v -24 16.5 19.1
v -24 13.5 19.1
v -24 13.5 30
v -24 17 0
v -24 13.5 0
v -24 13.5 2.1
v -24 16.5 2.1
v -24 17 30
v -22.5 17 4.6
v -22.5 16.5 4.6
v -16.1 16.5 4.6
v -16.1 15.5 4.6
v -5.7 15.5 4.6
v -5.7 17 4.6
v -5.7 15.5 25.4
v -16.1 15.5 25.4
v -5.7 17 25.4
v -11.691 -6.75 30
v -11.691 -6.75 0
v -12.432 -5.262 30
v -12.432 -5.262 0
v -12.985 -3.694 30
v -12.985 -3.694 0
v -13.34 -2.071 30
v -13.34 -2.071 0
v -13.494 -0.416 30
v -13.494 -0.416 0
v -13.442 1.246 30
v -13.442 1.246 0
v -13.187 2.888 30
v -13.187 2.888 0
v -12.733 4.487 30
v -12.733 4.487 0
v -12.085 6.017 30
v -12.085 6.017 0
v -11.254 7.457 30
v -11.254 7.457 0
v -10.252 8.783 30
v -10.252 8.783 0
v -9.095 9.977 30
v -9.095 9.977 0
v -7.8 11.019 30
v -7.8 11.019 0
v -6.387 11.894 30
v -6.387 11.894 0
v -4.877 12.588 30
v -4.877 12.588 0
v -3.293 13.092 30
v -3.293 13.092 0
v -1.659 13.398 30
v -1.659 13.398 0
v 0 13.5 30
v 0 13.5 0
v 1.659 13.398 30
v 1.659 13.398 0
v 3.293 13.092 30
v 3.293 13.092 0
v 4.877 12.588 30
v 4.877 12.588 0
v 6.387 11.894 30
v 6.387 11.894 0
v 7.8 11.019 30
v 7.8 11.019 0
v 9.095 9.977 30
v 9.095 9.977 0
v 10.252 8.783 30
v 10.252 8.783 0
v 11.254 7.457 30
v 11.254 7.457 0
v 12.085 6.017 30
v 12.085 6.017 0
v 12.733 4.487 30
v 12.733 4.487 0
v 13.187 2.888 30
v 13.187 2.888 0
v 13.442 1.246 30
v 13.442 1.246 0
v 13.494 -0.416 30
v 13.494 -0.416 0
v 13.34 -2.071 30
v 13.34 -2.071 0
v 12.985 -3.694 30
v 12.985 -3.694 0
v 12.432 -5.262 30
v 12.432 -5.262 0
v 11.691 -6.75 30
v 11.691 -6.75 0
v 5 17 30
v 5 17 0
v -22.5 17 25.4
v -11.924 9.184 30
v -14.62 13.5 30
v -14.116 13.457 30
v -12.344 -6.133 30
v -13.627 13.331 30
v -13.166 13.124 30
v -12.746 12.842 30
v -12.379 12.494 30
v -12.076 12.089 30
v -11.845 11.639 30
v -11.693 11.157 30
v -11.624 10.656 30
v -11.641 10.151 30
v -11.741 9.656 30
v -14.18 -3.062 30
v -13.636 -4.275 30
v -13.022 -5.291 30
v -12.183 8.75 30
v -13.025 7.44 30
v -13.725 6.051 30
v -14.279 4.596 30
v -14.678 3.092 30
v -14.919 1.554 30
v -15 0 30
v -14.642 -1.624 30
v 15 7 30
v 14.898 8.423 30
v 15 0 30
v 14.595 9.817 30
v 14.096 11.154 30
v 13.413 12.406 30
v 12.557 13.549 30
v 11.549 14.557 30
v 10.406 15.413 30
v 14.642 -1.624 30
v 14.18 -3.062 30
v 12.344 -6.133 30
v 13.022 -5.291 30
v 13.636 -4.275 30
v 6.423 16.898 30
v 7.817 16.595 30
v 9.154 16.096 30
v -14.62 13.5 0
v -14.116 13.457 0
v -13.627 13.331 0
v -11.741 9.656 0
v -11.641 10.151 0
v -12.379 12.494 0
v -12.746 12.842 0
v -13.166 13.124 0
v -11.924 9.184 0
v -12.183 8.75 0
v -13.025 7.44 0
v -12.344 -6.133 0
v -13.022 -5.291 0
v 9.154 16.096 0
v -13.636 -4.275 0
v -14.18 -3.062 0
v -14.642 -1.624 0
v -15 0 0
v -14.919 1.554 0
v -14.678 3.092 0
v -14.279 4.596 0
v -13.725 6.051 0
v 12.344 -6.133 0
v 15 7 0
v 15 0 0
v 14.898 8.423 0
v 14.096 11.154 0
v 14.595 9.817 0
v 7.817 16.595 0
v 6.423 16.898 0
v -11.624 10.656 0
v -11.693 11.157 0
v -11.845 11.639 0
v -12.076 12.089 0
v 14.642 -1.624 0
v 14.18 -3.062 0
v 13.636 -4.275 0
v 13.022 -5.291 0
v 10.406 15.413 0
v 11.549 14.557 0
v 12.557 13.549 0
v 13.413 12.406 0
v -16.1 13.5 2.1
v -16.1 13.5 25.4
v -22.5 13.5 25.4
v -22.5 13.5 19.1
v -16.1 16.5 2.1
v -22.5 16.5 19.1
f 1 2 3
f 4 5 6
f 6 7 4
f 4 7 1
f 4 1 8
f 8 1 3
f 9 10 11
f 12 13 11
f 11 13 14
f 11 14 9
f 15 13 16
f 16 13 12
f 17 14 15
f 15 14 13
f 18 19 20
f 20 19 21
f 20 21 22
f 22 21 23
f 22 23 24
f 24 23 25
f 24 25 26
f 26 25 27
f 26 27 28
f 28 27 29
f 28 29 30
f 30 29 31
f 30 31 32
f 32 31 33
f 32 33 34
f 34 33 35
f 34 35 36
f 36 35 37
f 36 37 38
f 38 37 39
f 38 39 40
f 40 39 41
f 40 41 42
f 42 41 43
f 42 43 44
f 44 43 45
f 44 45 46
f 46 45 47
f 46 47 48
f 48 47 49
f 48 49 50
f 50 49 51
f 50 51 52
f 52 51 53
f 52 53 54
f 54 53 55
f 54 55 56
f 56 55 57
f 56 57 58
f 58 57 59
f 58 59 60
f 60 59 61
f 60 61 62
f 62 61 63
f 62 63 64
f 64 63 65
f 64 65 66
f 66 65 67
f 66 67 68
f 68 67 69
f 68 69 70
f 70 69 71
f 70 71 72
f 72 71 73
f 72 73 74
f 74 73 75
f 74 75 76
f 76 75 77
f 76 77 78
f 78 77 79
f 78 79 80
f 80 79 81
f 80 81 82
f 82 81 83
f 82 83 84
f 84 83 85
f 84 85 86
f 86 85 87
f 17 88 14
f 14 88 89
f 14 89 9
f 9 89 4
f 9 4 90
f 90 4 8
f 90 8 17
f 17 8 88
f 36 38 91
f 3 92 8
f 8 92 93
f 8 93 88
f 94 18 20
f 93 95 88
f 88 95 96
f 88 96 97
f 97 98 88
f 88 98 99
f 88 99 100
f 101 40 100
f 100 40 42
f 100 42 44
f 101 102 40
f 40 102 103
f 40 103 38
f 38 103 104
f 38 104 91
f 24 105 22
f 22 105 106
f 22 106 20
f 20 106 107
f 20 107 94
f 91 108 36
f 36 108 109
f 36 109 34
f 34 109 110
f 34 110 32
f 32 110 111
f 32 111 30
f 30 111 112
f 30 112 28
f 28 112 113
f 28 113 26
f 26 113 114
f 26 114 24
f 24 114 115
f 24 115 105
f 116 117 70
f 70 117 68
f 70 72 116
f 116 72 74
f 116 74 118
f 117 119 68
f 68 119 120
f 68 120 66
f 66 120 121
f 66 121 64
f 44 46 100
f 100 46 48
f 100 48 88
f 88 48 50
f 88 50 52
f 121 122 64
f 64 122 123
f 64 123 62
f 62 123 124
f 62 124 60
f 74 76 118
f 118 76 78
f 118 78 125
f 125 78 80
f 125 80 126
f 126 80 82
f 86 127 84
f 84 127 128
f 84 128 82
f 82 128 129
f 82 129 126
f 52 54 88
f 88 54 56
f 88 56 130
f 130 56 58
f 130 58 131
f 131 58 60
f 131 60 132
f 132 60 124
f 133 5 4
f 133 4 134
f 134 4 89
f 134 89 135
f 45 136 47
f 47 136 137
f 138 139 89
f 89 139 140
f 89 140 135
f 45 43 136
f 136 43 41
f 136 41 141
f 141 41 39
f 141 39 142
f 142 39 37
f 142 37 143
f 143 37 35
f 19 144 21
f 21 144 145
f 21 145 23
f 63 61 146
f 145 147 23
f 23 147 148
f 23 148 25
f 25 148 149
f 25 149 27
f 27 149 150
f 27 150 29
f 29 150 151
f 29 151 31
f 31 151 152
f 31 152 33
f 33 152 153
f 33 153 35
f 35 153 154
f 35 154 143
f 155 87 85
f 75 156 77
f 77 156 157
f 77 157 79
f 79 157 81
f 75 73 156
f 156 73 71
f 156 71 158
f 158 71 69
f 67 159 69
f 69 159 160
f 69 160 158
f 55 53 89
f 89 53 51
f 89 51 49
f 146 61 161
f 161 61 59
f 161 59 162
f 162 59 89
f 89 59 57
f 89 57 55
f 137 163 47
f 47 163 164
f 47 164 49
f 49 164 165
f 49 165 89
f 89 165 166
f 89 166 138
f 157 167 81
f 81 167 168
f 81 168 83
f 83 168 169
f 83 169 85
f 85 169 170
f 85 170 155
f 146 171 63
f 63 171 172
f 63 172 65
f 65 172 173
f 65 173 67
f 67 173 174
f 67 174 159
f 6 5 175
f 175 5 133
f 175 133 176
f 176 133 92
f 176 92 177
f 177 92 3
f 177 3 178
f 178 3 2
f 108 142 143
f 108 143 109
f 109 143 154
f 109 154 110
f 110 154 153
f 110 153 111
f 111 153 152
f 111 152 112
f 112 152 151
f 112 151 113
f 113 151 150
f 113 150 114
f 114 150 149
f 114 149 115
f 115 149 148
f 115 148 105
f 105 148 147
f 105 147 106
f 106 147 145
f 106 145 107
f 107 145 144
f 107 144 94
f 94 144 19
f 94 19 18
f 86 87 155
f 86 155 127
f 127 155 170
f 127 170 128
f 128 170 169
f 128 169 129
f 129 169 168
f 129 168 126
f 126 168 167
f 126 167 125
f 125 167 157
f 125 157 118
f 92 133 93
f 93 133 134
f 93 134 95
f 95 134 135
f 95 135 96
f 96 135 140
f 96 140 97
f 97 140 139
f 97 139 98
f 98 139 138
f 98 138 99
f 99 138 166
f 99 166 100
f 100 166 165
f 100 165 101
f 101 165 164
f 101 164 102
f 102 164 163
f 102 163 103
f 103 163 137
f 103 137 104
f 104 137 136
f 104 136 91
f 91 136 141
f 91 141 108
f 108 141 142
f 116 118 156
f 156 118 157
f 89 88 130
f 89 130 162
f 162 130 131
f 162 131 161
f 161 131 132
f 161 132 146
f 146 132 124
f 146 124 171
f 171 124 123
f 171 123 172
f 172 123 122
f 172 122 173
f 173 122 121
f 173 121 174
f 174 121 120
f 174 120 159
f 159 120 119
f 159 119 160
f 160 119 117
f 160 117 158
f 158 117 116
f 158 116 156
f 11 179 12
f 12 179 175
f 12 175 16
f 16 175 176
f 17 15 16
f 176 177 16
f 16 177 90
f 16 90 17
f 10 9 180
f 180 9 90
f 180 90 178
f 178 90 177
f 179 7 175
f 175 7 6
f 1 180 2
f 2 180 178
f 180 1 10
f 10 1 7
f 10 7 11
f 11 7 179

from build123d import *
from build123d.topology import SkipClean

# Parameters (mm, degrees)
SKETCH_2_W           = 5
SKETCH_2_H           = 5
EXTRUDE_3_DEPTH      = 30
CUT_EXTRUDE_10_DEPTH = 3
SKETCH_10_W          = 25.587445544
SKETCH_10_H          = 30
CUT_EXTRUDE_11_DEPTH = 1.5
SKETCH_11_W          = 16.6
SKETCH_11_H          = 21.6
SKETCH_11_W_2        = 16
SKETCH_11_H_2        = 21
CUT_EXTRUDE_13_DEPTH = 1.5
SKETCH_12_W          = 3.2
SKETCH_12_H          = 21.6
CUT_EXTRUDE_14_DEPTH = 2
FILLET_7_R           = 7
FILLET_8_R           = 3
SKETCH_13_W          = 4.016092165
SKETCH_13_H          = 18.031984282
CUT_EXTRUDE_15_DEPTH = 1.5
EXTRUDE_4_DEPTH      = 1.5
SKETCH_15_W          = 10
SKETCH_15_H          = 30
EXTRUDE_6_DEPTH      = 8
SKETCH_17_R          = 13.5
CUT_EXTRUDE_16_DEPTH = 40.862263024
SKETCH_19_W          = 16.6
SKETCH_19_H          = 0.2
EXTRUDE_7_DEPTH      = 3.5
SKETCH_20_W          = 30
SKETCH_20_H          = 17
EXTRUDE_8_DEPTH      = 5.211662
FILLET_18_R          = 10
SKETCH_21_R          = 13.5
CUT_EXTRUDE_17_DEPTH = 40.862263024
SKETCH_22_W          = 30
SKETCH_22_H          = 3.5
EXTRUDE_9_DEPTH      = 4
SKETCH_23_W          = 21.2
SKETCH_23_H          = 3.5
CUT_EXTRUDE_18_DEPTH = 4
EXTRUDE_START        = -3
SKETCH_24_R          = 1.1
EXTRUDE_10_DEPTH     = 3
SKETCH_25_W          = 21.2
SKETCH_25_H          = 1.5
EXTRUDE_11_DEPTH     = 4
SKETCH_27_W          = 16.6
SKETCH_27_H          = 3.5
EXTRUDE_12_DEPTH     = 0.5
SKETCH_28_W          = 16.6
SKETCH_28_H          = 3.5
EXTRUDE_13_DEPTH     = 0.5
SKETCH_29_W          = 20.2
SKETCH_29_H          = 2
EXTRUDE_14_DEPTH     = 1
CUT_EXTRUDE_19_DEPTH = 0.3
CUT_EXTRUDE_20_DEPTH = 0.3
SKETCH_32_W          = 20.8
SKETCH_32_H          = 3.5
CUT_EXTRUDE_21_DEPTH = 0.2
SKETCH_33_W          = 10.4
SKETCH_33_H          = 20.8
CUT_EXTRUDE_22_DEPTH = 1.5
SKETCH_34_W          = 0.328912479
SKETCH_34_H          = 2.5
SKETCH_34_W_2        = 6.071087521
CUT_EXTRUDE_24_DEPTH = 3


with BuildPart() as part:
    # 스케치2 → 보스-돌출3 (new body)
    with BuildSketch(Plane.XY):
        with Locations((-17.5, 16)):
            Rectangle(SKETCH_2_W, SKETCH_2_H)
        with BuildLine():
            Line((-6.659230275, 13.5), (-6.538348415, 13.5))
            ThreePointArc((-6.538348415, 13.5), (-3.354101966, 14.620191517), (0, 15))
            Line((0, 15), (0, 18.5))
            Line((0, 18.5), (-15, 18.5))
            Line((-15, 18.5), (-15, 13.5))
            Line((-15, 13.5), (-6.659230275, 13.5))
        make_face()
        with BuildLine():
            Line((0, 18.5), (0, 15))
            ThreePointArc((0, 15), (2.845384759, 14.72765377), (5.587445544, 13.920504743))
            Line((5.587445544, 13.920504743), (5.587445544, 18.5))
            Line((5.587445544, 18.5), (0, 18.5))
        make_face()
        with BuildLine():
            Line((0, 15), (0, 13.5))
            Line((0, 13.5), (5.587445544, 13.5))
            Line((5.587445544, 13.5), (5.587445544, 13.920504743))
            ThreePointArc((5.587445544, 13.920504743), (2.845384759, 14.72765377), (0, 15))
        make_face()
        with BuildLine():
            Line((-6.538348415, 13.5), (0, 13.5))
            Line((0, 13.5), (0, 15))
            ThreePointArc((0, 15), (-3.354101966, 14.620191517), (-6.538348415, 13.5))
        make_face()
        with BuildLine():
            ThreePointArc((-11.691342951, -6.75), (-11.691342951, 6.75), (0, 13.5))
            Line((0, 13.5), (-6.538348415, 13.5))
            ThreePointArc((-6.538348415, 13.5), (-12.709744809, 7.966328319), (-15, 0))
            add(Edge.make_bspline(
                [(-15, 0), (-14.169195888, -4.6958052), (-11.691342951, -6.75)],
                knots=[0, 0, 0, 0.391349689, 0.391349689, 0.391349689], degree=2))
        make_face()
        with BuildLine():
            Line((5.587445544, 13.920504743), (5.587445544, 13.5))
            Line((5.587445544, 13.5), (6.538348415, 13.5))
            ThreePointArc((6.538348415, 13.5), (6.066541506, 13.718493873), (5.587445544, 13.920504743))
        make_face()
        with BuildLine():
            Line((5.587445544, 13.5), (0, 13.5))
            ThreePointArc((0, 13.5), (9.545941546, 9.545941546), (13.5, 0))
            ThreePointArc((13.5, 0), (13.039998655, -3.494057109), (11.691342951, -6.75))
            add(Edge.make_bspline(
                [(15, 0), (14.169195888, -4.6958052), (11.691342951, -6.75)],
                knots=[0, 0, 0, 0.391349689, 0.391349689, 0.391349689], degree=2))
            ThreePointArc((15, 0), (12.709744809, 7.966328319), (6.538348415, 13.5))
            Line((6.538348415, 13.5), (5.587445544, 13.5))
        make_face()
    extrude(amount=EXTRUDE_3_DEPTH)

    # 스케치3 → 컷-돌출10 (cut)
    with BuildSketch(Plane(origin=(0, 18.5, 0), x_dir=(1, 0, 0), z_dir=(0, 1, 0))):
        with BuildLine():
            Line((-18, -4.5), (-18, -15))
            Line((-18, -15), (-18, -25.5))
            Line((-18, -25.5), (-5.67, -25.5))
            Line((-5.67, -25.5), (-5.67, -23.546313431))
            ThreePointArc((-5.67, -23.546313431), (-6.553883476, -21.412429955), (-4.42, -22.296313431))
            Line((-4.42, -22.296313431), (-2, -22.296313431))
            Line((-2, -22.296313431), (-2, -7.5))
            Line((-2, -7.5), (-4.42, -7.5))
            ThreePointArc((-4.42, -7.5), (-6.553883476, -8.383883476), (-5.67, -6.25))
            Line((-5.67, -6.25), (-5.67, -4.5))
            Line((-5.67, -4.5), (-18, -4.5))
        make_face()
        with BuildLine():
            Line((-2, -4.5), (-5.67, -4.5))
            Line((-5.67, -4.5), (-5.67, -6.25))
            ThreePointArc((-5.67, -6.25), (-4.786116524, -6.616116524), (-4.42, -7.5))
            Line((-4.42, -7.5), (-2, -7.5))
            Line((-2, -7.5), (-2, -4.5))
        make_face()
        with BuildLine():
            Line((-5.67, -23.546313431), (-5.67, -25.5))
            Line((-5.67, -25.5), (-2, -25.5))
            Line((-2, -25.5), (-2, -22.296313431))
            Line((-2, -22.296313431), (-4.42, -22.296313431))
            ThreePointArc((-4.42, -22.296313431), (-4.786116524, -23.180196907), (-5.67, -23.546313431))
        make_face()
    extrude(amount=-CUT_EXTRUDE_10_DEPTH, mode=Mode.SUBTRACT)

    # 스케치10 → 컷-돌출11 (cut)
    with BuildSketch(Plane(origin=(0, 18.5, 0), x_dir=(1, 0, 0), z_dir=(0, 1, 0))):
        with Locations((-7.206277228, -15)):
            Rectangle(SKETCH_10_W, SKETCH_10_H)
    extrude(amount=-CUT_EXTRUDE_11_DEPTH, mode=Mode.SUBTRACT)

    # 스케치11 → 컷-돌출13 (cut)
    with BuildSketch(Plane(origin=(0, 17, 0), x_dir=(1, 0, 0), z_dir=(0, 1, 0))):
        with Locations((-10, -15)):
            Rectangle(SKETCH_11_W, SKETCH_11_H)
        with Locations((-10, -15)):
            Rectangle(SKETCH_11_W_2, SKETCH_11_H_2, mode=Mode.SUBTRACT)
    extrude(amount=-CUT_EXTRUDE_13_DEPTH, mode=Mode.SUBTRACT)

    # 스케치12 → 컷-돌출14 (cut)
    with BuildSketch(Plane(origin=(0, 15.5, 0), x_dir=(1, 0, 0), z_dir=(0, 1, 0))):
        with Locations((-16.7, -15)):
            Rectangle(SKETCH_12_W, SKETCH_12_H)
    extrude(amount=-CUT_EXTRUDE_14_DEPTH, mode=Mode.SUBTRACT)

    # 필렛7
    # the kernel refuses this fillet: 7 mm, written as the material it takes off along each edge
    with BuildSketch(Plane(origin=(5.587445544, 17, -14.497767621), x_dir=(-1, 0, 0), z_dir=(0, 0, 1))) as fillet_7_piece_1:
        with BuildLine():
            CenterArc((5.799107049, 7), FILLET_7_R, 214.060784508, 55.939215492)
            Line((0, 3.079495257), (-0.115982141, 3.001085162))
            ThreePointArc((-0.115982141, 3.001085162), (-0.14, 1.539747629), (-0.14, 0))
            Line((-0.14, 0), (0, -0.14))
            Line((0, -0.14), (5.799107049, -0.14))
            Line((5.799107049, -0.14), (5.799107049, 0))
        make_face()
    extrude(amount=58.995535243, mode=Mode.SUBTRACT)

    # 필렛8
    fillet_8_edges = [part.edges().sort_by_distance(p)[0] for p in [
        (-6.538348415, 13.5, 15),
    ]]
    fillet(fillet_8_edges, radius=FILLET_8_R)

    # 스케치13 → 컷-돌출15 (cut)
    with BuildSketch(Plane(origin=(0, 17, 0), x_dir=(1, 0, 0), z_dir=(0, 1, 0))):
        with Locations((-5.720959824, -14.919139084)):
            Rectangle(SKETCH_13_W, SKETCH_13_H)
    extrude(amount=-CUT_EXTRUDE_15_DEPTH, mode=Mode.SUBTRACT)

    # 스케치14 → 보스-돌출4 (add)
    with BuildSketch(Plane(origin=(0, 15.5, 0), x_dir=(1, 0, 0), z_dir=(0, 1, 0))):
        with BuildLine():
            ThreePointArc((-3.1, -7.2), (-3.422182541, -6.422182541), (-4.2, -6.1))
            Line((-4.2, -6.1), (-4.2, -7.2))
            Line((-4.2, -7.2), (-3.1, -7.2))
        make_face()
        with BuildLine():
            Line((-4.2, -7.2), (-4.2, -6.1))
            ThreePointArc((-4.2, -6.1), (-4.977817459, -7.977817459), (-3.1, -7.2))
            Line((-3.1, -7.2), (-4.2, -7.2))
        make_face()
        with BuildLine():
            ThreePointArc((-3.1, -22.8), (-4.977817459, -22.022182541), (-4.2, -23.9))
            Line((-4.2, -23.9), (-4.2, -22.8))
            Line((-4.2, -22.8), (-3.1, -22.8))
        make_face()
        with BuildLine():
            Line((-4.2, -22.8), (-4.2, -23.9))
            ThreePointArc((-4.2, -23.9), (-3.422182541, -23.577817459), (-3.1, -22.8))
            Line((-3.1, -22.8), (-4.2, -22.8))
        make_face()
    extrude(amount=EXTRUDE_4_DEPTH)

    # 스케치15 → 보스-돌출6 (add)
    with BuildSketch(Plane(origin=(0, 17, 0), x_dir=(1, 0, 0), z_dir=(0, 1, 0))):
        with Locations((4.788338495, -15)):
            Rectangle(SKETCH_15_W, SKETCH_15_H)
    extrude(amount=-EXTRUDE_6_DEPTH)

    # 스케치17 → 컷-돌출16 (cut, through all)
    with BuildSketch(Plane(origin=(0, 0, 0), x_dir=(-1, 0, 0), z_dir=(0, 0, -1))):
        Circle(SKETCH_17_R)
    extrude(amount=-CUT_EXTRUDE_16_DEPTH, mode=Mode.SUBTRACT)

    # 스케치19 → 보스-돌출7 (add)
    with BuildSketch(Plane(origin=(0, 17, 0), x_dir=(1, 0, 0), z_dir=(0, 1, 0))):
        with Locations((-10, -4.3)):
            Rectangle(SKETCH_19_W, SKETCH_19_H)
        with Locations((-10, -25.7)):
            Rectangle(SKETCH_19_W, SKETCH_19_H)
    extrude(amount=-EXTRUDE_7_DEPTH)

    # 스케치20 → 보스-돌출8 (add)
    with BuildSketch(Plane(origin=(9.788338495, 0, 0), x_dir=(0, 0, -1), z_dir=(1, 0, 0))):
        with Locations((-15, 8.5)):
            Rectangle(SKETCH_20_W, SKETCH_20_H)
    extrude(amount=EXTRUDE_8_DEPTH)

    # 필렛18
    fillet_18_edges = [part.edges().sort_by_distance(p)[0] for p in [
        (15.000000495, 17, 15),
    ]]
    fillet(fillet_18_edges, radius=FILLET_18_R)

    # 스케치21 → 컷-돌출17 (cut, through all)
    with SkipClean():  # the faces are left unmerged after this step: merging them gives an invalid solid
        with BuildSketch(Plane.XY.offset(30)):
            Circle(SKETCH_21_R)
        extrude(amount=-CUT_EXTRUDE_17_DEPTH, mode=Mode.SUBTRACT)

    # 스케치22 → 보스-돌출9 (add)
    with SkipClean():  # the faces are left unmerged after this step: merging them gives an invalid solid
        with BuildSketch(Plane.ZY.offset(20)):
            with Locations((15, 15.25)):
                Rectangle(SKETCH_22_W, SKETCH_22_H)
        extrude(amount=EXTRUDE_9_DEPTH)

    # 스케치23 → 컷-돌출18 (cut)
    with SkipClean():  # the faces are left unmerged after this step: merging them gives an invalid solid
        with BuildSketch(Plane(origin=(-18.3, 0, 0), x_dir=(0, 0, -1), z_dir=(1, 0, 0))):
            with Locations((-15, 15.25)):
                Rectangle(SKETCH_23_W, SKETCH_23_H)
        extrude(amount=-CUT_EXTRUDE_18_DEPTH, mode=Mode.SUBTRACT)

    # 스케치24 → 보스-돌출10 (add)
    with SkipClean():  # the faces are left unmerged after this step: merging them gives an invalid solid
        with BuildSketch(Plane(origin=(0, 17, 0), x_dir=(1, 0, 0), z_dir=(0, 1, 0)).offset(EXTRUDE_START)):
            with Locations(Location((-4.2, -7.2, 0), (0, 0, 270))):
                Circle(SKETCH_24_R)
            with Locations(Location((-8.2, -7.2, 0), (0, 0, 270))):
                Circle(SKETCH_24_R)
            with Locations(Location((-8.2, -22.8, 0), (0, 0, 270))):
                Circle(SKETCH_24_R)
        extrude(amount=EXTRUDE_10_DEPTH)

    # 스케치25 → 보스-돌출11 (add)
    with SkipClean():  # the faces are left unmerged after this step: merging them gives an invalid solid
        with BuildSketch(Plane.ZY.offset(1.7)):
            with Locations((15, 16.25)):
                Rectangle(SKETCH_25_W, SKETCH_25_H)
        extrude(amount=EXTRUDE_11_DEPTH)

    # 스케치27 → 보스-돌출12 (add)
    with SkipClean():  # the faces are left unmerged after this step: merging them gives an invalid solid
        with BuildSketch(Plane.XY.offset(4.4)):
            with Locations((-14, 15.25)):
                Rectangle(SKETCH_27_W, SKETCH_27_H)
        extrude(amount=EXTRUDE_12_DEPTH)

    # 스케치28 → 보스-돌출13 (add)
    with SkipClean():  # the faces are left unmerged after this step: merging them gives an invalid solid
        with BuildSketch(Plane(origin=(0, 0, 25.6), x_dir=(-1, 0, 0), z_dir=(0, 0, -1))):
            with Locations((14, 15.25)):
                Rectangle(SKETCH_28_W, SKETCH_28_H)
        extrude(amount=EXTRUDE_13_DEPTH)

    # 스케치29 → 보스-돌출14 (add)
    with SkipClean():  # the faces are left unmerged after this step: merging them gives an invalid solid
        with BuildSketch(Plane.ZY.offset(15.1)):
            with Locations((15, 14.5)):
                Rectangle(SKETCH_29_W, SKETCH_29_H)
        extrude(amount=EXTRUDE_14_DEPTH)

    # 스케치30 → 컷-돌출19 (cut)
    with SkipClean():  # the faces are left unmerged after this step: merging them gives an invalid solid
        with BuildSketch(Plane(origin=(0, 0, 25.1), x_dir=(-1, 0, 0), z_dir=(0, 0, -1))):
            Polygon((5.7, 15.5), (16.1, 15.5), (16.1, 13.5), (22.3, 13.5), (22.3, 17), (5.7, 17), align=None)
        extrude(amount=-CUT_EXTRUDE_19_DEPTH, mode=Mode.SUBTRACT)

    # 스케치31 → 컷-돌출20 (cut)
    with SkipClean():  # the faces are left unmerged after this step: merging them gives an invalid solid
        with BuildSketch(Plane.XY.offset(4.9)):
            Polygon((-16.1, 13.5), (-16.1, 15.5), (-5.7, 15.5), (-5.7, 17), (-22.3, 17), (-22.3, 13.5), align=None)
        extrude(amount=-CUT_EXTRUDE_20_DEPTH, mode=Mode.SUBTRACT)

    # 스케치32 → 컷-돌출21 (cut)
    with SkipClean():  # the faces are left unmerged after this step: merging them gives an invalid solid
        with BuildSketch(Plane(origin=(-22.3, 0, 0), x_dir=(0, 0, -1), z_dir=(1, 0, 0))):
            with Locations((-15, 15.25)):
                Rectangle(SKETCH_32_W, SKETCH_32_H)
        extrude(amount=-CUT_EXTRUDE_21_DEPTH, mode=Mode.SUBTRACT)

    # 스케치33 → 컷-돌출22 (cut)
    with SkipClean():  # the faces are left unmerged after this step: merging them gives an invalid solid
        with BuildSketch(Plane(origin=(0, 17, 0), x_dir=(1, 0, 0), z_dir=(0, 1, 0))):
            with Locations((-10.9, -15)):
                Rectangle(SKETCH_33_W, SKETCH_33_H)
        extrude(amount=-CUT_EXTRUDE_22_DEPTH, mode=Mode.SUBTRACT)

    # 스케치34 → 컷-돌출24 (cut)
    with SkipClean():  # the faces are left unmerged after this step: merging them gives an invalid solid
        with BuildSketch(Plane.XZ.offset(-13.5)):
            with Locations((-16.264456239, 3.35)):
                Rectangle(SKETCH_34_W, SKETCH_34_H)
            with Locations((-19.46445624, 3.35)):
                Rectangle(SKETCH_34_W_2, SKETCH_34_H)
            Polygon((-22.5, 2.1), (-22.5, 4.6), (-22.5, 19.1), (-24, 19.1), (-24, 2.1), align=None)
        extrude(amount=-CUT_EXTRUDE_24_DEPTH, mode=Mode.SUBTRACT)


solid = part.part
